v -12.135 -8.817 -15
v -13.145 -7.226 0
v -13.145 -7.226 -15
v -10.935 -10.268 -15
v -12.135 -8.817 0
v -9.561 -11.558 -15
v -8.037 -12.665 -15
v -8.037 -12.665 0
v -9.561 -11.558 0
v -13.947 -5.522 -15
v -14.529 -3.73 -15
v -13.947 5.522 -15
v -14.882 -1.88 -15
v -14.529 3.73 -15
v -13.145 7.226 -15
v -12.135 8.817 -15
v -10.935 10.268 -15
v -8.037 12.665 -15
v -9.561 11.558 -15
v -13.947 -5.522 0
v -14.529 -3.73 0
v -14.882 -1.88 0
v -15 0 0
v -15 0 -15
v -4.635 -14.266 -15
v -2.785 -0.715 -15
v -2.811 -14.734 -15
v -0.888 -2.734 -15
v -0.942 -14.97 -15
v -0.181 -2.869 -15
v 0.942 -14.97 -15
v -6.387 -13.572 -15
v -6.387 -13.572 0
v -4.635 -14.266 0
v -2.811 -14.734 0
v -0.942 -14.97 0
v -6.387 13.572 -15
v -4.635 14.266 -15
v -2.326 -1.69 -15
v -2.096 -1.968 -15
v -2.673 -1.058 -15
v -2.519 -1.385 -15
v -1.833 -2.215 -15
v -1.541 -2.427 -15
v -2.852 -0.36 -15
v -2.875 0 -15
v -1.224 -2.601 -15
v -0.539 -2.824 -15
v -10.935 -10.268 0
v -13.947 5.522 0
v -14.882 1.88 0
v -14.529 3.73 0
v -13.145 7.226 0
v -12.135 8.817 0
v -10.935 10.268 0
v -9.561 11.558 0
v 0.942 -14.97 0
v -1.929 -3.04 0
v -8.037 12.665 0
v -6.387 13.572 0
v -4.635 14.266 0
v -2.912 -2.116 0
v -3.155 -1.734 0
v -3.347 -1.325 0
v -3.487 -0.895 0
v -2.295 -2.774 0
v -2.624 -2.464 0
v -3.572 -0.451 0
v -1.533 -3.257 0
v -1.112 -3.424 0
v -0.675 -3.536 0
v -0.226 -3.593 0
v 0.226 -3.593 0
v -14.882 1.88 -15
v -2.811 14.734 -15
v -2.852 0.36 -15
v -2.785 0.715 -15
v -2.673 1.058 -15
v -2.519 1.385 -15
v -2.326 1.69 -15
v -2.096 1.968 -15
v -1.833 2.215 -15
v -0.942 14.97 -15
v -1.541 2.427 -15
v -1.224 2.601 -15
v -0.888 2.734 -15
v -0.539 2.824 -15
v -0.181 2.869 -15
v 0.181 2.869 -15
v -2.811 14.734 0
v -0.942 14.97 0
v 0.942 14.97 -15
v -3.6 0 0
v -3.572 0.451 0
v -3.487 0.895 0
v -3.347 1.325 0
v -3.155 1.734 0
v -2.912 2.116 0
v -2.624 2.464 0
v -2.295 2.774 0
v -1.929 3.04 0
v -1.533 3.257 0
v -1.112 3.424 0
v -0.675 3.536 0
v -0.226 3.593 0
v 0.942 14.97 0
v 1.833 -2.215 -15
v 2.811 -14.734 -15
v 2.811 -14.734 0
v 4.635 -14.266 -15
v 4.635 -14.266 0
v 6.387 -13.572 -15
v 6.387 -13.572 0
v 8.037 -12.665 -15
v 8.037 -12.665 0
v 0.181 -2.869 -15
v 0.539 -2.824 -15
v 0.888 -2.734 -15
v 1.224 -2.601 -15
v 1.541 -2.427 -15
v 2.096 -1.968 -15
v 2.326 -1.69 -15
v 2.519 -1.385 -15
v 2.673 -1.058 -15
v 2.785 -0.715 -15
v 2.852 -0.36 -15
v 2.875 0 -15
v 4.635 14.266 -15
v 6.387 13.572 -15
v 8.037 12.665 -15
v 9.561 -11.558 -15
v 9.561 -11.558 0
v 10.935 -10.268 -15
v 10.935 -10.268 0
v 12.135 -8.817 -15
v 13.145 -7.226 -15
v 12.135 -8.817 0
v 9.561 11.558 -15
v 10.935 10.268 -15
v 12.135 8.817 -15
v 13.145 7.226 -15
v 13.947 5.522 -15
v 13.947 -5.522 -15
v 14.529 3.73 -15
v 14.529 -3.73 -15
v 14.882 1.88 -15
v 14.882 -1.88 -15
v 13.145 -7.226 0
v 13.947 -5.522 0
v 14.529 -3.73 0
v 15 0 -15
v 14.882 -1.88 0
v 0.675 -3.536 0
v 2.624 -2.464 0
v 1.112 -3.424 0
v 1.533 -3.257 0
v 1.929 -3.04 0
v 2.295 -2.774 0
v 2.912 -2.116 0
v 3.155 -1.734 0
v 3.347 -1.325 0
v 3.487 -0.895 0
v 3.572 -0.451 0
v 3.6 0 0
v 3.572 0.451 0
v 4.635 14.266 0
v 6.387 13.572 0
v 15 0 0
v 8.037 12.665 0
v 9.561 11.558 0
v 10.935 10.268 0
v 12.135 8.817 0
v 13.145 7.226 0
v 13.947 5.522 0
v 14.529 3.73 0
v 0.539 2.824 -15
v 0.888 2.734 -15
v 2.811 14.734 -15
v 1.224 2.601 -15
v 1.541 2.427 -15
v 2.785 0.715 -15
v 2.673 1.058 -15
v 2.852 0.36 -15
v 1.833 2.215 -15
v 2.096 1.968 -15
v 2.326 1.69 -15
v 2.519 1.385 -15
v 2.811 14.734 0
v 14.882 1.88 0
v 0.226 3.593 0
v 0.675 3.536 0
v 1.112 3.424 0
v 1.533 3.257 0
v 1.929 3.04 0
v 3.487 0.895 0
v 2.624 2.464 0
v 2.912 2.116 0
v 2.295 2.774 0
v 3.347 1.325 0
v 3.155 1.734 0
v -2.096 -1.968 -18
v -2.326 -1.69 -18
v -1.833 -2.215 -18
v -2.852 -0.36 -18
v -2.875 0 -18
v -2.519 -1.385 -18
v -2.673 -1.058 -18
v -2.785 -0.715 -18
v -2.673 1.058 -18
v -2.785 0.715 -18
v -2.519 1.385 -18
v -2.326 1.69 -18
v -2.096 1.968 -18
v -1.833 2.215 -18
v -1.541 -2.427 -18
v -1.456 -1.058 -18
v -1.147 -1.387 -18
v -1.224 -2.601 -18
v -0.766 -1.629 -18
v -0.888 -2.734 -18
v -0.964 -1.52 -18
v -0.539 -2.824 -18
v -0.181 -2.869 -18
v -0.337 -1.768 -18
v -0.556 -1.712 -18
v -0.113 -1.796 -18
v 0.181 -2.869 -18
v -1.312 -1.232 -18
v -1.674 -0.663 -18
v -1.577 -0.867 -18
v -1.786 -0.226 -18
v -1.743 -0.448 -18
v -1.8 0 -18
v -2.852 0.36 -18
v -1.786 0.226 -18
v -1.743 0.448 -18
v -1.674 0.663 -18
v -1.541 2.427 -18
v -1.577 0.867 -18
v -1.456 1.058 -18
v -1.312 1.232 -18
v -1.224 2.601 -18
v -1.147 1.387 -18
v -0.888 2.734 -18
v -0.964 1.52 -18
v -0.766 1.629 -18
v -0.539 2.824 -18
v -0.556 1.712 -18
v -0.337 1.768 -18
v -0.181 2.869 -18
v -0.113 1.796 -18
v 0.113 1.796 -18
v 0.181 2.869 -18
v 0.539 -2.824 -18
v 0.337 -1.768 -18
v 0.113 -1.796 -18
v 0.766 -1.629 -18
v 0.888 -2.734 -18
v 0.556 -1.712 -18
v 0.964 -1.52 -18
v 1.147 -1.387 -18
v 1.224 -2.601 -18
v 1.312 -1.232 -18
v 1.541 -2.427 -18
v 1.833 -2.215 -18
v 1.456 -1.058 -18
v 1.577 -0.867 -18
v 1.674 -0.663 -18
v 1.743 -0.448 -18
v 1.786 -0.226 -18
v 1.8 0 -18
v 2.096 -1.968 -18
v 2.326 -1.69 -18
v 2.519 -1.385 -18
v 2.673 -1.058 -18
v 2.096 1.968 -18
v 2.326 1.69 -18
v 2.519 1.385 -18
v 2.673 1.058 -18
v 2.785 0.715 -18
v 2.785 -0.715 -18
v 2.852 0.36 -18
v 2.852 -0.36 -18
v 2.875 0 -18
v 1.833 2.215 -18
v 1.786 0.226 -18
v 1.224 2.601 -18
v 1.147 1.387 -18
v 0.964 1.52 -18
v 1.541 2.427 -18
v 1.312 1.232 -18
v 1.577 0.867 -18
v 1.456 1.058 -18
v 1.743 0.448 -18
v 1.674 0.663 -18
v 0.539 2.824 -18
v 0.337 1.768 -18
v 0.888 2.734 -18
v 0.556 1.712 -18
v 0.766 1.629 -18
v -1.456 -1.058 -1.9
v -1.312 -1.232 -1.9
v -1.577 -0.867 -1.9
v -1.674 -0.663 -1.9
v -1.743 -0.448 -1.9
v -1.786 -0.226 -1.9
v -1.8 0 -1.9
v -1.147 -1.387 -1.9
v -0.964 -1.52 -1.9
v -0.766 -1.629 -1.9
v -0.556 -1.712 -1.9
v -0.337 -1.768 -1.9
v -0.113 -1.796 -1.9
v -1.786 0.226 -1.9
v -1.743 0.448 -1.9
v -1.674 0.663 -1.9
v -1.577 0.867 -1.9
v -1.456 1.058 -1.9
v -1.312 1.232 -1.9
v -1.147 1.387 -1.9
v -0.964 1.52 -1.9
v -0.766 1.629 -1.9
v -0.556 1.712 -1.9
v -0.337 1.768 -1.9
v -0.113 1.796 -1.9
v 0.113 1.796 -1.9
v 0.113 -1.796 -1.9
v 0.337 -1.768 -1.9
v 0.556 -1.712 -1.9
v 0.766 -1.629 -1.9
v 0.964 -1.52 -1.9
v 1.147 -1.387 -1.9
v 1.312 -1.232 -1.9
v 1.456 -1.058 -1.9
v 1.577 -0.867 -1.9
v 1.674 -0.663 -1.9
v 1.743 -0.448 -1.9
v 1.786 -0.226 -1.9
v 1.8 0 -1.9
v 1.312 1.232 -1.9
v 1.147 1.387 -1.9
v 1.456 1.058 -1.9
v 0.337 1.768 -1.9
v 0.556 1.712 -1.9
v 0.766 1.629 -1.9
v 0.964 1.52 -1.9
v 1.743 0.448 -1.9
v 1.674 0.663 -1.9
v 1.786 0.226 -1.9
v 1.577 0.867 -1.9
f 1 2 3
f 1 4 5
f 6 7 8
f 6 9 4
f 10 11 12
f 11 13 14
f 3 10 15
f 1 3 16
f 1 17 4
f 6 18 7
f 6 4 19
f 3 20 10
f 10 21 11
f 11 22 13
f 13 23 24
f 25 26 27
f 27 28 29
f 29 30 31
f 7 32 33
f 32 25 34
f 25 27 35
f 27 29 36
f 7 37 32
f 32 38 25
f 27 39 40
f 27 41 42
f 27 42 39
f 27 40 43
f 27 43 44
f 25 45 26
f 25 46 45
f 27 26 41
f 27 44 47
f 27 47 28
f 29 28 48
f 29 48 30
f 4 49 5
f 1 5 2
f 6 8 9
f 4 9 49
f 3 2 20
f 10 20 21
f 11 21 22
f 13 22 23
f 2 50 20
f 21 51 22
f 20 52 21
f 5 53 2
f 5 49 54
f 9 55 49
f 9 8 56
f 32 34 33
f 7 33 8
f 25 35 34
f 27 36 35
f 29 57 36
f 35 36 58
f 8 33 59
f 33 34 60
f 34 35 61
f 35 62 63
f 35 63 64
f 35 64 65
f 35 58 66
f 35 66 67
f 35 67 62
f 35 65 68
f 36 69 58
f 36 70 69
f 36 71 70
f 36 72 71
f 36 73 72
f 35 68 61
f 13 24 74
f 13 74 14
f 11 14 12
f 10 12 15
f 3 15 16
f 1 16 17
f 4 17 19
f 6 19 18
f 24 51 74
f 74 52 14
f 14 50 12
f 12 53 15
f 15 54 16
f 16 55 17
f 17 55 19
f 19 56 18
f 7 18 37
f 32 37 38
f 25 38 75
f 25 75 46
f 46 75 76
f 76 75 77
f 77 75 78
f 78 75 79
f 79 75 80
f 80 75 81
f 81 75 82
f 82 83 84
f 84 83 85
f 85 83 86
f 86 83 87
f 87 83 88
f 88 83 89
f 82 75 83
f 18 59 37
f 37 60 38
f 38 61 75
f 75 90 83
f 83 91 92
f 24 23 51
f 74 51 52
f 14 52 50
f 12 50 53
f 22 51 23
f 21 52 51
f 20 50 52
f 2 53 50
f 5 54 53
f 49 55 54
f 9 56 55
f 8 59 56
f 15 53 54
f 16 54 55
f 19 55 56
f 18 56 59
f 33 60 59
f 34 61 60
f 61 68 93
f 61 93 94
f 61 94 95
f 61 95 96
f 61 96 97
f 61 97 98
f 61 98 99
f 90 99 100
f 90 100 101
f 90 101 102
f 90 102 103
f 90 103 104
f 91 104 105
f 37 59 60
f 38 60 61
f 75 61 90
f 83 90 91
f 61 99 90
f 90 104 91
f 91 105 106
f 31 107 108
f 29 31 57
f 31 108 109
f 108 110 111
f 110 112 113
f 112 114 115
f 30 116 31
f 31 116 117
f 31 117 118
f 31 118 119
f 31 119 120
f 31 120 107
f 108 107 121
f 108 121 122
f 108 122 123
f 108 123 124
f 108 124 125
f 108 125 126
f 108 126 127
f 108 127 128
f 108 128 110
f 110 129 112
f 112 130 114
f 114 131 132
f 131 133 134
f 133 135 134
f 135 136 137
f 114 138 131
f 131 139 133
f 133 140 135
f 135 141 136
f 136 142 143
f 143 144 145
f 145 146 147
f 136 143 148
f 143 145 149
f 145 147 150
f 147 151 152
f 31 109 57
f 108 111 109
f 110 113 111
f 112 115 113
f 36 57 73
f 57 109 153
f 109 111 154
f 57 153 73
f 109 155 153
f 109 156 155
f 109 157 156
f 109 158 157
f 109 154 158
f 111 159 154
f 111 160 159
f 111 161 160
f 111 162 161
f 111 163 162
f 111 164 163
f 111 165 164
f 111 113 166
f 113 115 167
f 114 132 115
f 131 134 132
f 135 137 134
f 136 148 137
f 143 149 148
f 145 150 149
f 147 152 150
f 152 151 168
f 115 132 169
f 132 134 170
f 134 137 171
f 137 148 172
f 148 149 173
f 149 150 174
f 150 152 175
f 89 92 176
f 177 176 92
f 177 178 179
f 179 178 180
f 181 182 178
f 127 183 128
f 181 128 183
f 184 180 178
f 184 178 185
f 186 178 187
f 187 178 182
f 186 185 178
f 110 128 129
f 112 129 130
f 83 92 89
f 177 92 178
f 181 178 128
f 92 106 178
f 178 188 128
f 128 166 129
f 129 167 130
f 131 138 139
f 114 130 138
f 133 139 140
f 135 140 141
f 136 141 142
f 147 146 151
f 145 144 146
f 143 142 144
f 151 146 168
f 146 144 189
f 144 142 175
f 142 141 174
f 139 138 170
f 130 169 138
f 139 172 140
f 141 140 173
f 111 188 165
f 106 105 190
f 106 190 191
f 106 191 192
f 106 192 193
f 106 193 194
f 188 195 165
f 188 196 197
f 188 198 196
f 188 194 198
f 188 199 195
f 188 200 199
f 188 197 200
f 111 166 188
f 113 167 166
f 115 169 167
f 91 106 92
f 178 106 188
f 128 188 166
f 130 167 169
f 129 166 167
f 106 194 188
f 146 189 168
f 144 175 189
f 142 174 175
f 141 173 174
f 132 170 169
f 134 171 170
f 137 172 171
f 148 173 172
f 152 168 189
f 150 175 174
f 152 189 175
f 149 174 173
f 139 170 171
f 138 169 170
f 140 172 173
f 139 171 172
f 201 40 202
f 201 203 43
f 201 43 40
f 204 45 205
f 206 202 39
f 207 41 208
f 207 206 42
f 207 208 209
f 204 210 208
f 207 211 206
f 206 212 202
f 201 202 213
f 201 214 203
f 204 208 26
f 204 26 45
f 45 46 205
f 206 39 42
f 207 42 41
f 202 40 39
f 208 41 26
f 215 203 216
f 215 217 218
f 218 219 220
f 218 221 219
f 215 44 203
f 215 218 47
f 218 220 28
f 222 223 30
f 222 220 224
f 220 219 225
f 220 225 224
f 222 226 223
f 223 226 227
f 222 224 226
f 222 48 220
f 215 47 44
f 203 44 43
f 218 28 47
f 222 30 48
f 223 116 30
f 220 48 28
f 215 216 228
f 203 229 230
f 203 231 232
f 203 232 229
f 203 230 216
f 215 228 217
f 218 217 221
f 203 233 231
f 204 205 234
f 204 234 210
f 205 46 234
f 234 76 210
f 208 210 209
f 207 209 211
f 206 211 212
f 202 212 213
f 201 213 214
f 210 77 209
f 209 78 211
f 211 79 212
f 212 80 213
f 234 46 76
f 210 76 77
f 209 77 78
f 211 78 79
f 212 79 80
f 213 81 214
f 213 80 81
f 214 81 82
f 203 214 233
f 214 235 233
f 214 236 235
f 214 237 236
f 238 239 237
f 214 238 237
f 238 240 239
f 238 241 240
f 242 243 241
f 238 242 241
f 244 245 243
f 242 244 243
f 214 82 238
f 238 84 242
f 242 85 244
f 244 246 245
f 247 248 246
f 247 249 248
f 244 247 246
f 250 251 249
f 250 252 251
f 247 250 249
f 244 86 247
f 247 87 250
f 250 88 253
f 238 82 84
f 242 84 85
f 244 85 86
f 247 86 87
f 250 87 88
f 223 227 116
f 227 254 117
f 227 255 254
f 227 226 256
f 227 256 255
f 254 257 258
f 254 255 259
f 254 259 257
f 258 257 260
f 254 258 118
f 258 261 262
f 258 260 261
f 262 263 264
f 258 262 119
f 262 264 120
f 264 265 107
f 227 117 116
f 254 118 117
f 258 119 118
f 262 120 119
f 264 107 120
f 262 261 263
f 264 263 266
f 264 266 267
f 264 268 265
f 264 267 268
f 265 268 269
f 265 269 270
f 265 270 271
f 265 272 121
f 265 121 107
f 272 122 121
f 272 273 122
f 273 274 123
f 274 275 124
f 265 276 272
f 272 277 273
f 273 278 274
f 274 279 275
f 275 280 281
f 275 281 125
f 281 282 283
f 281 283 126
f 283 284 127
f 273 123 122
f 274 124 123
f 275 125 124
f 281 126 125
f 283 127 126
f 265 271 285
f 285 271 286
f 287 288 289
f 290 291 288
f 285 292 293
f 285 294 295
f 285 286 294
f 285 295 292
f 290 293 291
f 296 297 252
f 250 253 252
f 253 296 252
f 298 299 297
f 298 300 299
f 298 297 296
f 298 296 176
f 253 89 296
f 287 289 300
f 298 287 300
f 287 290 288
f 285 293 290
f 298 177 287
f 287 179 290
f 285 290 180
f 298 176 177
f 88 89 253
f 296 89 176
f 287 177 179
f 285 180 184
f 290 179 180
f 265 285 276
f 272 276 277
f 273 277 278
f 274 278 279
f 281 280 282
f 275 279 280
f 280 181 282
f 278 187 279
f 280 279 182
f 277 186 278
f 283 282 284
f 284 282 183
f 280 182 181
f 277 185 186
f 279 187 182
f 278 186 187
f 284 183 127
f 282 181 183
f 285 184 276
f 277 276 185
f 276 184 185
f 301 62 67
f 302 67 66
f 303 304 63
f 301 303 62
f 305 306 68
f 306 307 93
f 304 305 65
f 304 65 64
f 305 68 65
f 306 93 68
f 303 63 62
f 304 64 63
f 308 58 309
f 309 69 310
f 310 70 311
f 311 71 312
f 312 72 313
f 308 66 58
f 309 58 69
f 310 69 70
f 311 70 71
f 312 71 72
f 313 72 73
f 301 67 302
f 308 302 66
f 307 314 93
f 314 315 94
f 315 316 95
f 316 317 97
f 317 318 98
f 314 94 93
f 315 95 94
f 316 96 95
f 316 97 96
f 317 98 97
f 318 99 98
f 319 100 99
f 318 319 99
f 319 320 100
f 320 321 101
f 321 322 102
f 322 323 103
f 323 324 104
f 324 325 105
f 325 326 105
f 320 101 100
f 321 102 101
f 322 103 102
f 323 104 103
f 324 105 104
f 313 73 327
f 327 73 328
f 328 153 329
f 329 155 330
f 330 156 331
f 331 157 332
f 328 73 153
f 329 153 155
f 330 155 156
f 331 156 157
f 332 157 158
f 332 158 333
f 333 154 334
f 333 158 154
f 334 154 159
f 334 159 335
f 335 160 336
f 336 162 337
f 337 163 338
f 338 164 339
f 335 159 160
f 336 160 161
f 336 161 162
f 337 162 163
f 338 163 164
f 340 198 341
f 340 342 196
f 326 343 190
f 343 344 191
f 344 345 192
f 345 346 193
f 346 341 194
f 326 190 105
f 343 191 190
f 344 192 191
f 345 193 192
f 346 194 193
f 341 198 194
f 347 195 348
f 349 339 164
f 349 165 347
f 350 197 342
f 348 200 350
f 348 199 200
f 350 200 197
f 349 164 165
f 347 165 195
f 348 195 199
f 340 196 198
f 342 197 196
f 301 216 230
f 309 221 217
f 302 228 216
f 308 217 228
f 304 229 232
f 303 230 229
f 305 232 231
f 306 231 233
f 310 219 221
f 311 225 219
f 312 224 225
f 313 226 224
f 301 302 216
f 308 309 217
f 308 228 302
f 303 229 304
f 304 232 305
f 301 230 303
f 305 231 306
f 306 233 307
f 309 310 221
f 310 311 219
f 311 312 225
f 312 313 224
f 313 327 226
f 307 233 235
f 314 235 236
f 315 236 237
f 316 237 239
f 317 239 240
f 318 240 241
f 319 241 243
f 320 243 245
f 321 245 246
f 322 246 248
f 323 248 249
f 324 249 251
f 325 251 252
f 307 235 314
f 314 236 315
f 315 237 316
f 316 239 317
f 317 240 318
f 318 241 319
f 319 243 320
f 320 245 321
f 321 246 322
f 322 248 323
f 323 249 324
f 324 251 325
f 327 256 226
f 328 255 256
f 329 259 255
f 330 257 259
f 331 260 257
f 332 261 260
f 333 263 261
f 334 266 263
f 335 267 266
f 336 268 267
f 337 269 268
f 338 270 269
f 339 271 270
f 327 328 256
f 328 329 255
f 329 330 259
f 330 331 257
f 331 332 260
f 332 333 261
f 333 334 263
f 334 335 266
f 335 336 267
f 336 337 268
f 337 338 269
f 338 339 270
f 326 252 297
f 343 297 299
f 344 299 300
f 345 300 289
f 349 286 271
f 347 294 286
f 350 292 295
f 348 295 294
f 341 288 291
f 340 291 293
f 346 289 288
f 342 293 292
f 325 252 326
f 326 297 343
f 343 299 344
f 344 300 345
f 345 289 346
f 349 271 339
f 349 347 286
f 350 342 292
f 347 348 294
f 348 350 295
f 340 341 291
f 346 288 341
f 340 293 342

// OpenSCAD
$fn = 50;

difference() {
	union() {
		translate(v = [0, 0, -15.0]) {
			cylinder(h = 15, r = 15.0);
		}
		#translate(v = [0, 0, -18.0]) {
			cylinder(h = 18, r = 2.875);
		}
	}
	union() {
		translate(v = [0, 0, 0]) {
			rotate(a = [0, 0, 0]) {
				difference() {
					union() {
						translate(v = [0, 0, -18.0]) {
							cylinder(h = 18, r = 1.5);
						}
						translate(v = [0, 0, -1.9]) {
							cylinder(h = 1.9, r1 = 1.8, r2 = 3.6);
						}
						translate(v = [0, 0, -18.0]) {
							cylinder(h = 18, r = 1.8);
						}
						translate(v = [0, 0, -18.0]) {
							cylinder(h = 18, r = 1.5);
						}
					}
					union();
				}
			}
		}
	}
}
